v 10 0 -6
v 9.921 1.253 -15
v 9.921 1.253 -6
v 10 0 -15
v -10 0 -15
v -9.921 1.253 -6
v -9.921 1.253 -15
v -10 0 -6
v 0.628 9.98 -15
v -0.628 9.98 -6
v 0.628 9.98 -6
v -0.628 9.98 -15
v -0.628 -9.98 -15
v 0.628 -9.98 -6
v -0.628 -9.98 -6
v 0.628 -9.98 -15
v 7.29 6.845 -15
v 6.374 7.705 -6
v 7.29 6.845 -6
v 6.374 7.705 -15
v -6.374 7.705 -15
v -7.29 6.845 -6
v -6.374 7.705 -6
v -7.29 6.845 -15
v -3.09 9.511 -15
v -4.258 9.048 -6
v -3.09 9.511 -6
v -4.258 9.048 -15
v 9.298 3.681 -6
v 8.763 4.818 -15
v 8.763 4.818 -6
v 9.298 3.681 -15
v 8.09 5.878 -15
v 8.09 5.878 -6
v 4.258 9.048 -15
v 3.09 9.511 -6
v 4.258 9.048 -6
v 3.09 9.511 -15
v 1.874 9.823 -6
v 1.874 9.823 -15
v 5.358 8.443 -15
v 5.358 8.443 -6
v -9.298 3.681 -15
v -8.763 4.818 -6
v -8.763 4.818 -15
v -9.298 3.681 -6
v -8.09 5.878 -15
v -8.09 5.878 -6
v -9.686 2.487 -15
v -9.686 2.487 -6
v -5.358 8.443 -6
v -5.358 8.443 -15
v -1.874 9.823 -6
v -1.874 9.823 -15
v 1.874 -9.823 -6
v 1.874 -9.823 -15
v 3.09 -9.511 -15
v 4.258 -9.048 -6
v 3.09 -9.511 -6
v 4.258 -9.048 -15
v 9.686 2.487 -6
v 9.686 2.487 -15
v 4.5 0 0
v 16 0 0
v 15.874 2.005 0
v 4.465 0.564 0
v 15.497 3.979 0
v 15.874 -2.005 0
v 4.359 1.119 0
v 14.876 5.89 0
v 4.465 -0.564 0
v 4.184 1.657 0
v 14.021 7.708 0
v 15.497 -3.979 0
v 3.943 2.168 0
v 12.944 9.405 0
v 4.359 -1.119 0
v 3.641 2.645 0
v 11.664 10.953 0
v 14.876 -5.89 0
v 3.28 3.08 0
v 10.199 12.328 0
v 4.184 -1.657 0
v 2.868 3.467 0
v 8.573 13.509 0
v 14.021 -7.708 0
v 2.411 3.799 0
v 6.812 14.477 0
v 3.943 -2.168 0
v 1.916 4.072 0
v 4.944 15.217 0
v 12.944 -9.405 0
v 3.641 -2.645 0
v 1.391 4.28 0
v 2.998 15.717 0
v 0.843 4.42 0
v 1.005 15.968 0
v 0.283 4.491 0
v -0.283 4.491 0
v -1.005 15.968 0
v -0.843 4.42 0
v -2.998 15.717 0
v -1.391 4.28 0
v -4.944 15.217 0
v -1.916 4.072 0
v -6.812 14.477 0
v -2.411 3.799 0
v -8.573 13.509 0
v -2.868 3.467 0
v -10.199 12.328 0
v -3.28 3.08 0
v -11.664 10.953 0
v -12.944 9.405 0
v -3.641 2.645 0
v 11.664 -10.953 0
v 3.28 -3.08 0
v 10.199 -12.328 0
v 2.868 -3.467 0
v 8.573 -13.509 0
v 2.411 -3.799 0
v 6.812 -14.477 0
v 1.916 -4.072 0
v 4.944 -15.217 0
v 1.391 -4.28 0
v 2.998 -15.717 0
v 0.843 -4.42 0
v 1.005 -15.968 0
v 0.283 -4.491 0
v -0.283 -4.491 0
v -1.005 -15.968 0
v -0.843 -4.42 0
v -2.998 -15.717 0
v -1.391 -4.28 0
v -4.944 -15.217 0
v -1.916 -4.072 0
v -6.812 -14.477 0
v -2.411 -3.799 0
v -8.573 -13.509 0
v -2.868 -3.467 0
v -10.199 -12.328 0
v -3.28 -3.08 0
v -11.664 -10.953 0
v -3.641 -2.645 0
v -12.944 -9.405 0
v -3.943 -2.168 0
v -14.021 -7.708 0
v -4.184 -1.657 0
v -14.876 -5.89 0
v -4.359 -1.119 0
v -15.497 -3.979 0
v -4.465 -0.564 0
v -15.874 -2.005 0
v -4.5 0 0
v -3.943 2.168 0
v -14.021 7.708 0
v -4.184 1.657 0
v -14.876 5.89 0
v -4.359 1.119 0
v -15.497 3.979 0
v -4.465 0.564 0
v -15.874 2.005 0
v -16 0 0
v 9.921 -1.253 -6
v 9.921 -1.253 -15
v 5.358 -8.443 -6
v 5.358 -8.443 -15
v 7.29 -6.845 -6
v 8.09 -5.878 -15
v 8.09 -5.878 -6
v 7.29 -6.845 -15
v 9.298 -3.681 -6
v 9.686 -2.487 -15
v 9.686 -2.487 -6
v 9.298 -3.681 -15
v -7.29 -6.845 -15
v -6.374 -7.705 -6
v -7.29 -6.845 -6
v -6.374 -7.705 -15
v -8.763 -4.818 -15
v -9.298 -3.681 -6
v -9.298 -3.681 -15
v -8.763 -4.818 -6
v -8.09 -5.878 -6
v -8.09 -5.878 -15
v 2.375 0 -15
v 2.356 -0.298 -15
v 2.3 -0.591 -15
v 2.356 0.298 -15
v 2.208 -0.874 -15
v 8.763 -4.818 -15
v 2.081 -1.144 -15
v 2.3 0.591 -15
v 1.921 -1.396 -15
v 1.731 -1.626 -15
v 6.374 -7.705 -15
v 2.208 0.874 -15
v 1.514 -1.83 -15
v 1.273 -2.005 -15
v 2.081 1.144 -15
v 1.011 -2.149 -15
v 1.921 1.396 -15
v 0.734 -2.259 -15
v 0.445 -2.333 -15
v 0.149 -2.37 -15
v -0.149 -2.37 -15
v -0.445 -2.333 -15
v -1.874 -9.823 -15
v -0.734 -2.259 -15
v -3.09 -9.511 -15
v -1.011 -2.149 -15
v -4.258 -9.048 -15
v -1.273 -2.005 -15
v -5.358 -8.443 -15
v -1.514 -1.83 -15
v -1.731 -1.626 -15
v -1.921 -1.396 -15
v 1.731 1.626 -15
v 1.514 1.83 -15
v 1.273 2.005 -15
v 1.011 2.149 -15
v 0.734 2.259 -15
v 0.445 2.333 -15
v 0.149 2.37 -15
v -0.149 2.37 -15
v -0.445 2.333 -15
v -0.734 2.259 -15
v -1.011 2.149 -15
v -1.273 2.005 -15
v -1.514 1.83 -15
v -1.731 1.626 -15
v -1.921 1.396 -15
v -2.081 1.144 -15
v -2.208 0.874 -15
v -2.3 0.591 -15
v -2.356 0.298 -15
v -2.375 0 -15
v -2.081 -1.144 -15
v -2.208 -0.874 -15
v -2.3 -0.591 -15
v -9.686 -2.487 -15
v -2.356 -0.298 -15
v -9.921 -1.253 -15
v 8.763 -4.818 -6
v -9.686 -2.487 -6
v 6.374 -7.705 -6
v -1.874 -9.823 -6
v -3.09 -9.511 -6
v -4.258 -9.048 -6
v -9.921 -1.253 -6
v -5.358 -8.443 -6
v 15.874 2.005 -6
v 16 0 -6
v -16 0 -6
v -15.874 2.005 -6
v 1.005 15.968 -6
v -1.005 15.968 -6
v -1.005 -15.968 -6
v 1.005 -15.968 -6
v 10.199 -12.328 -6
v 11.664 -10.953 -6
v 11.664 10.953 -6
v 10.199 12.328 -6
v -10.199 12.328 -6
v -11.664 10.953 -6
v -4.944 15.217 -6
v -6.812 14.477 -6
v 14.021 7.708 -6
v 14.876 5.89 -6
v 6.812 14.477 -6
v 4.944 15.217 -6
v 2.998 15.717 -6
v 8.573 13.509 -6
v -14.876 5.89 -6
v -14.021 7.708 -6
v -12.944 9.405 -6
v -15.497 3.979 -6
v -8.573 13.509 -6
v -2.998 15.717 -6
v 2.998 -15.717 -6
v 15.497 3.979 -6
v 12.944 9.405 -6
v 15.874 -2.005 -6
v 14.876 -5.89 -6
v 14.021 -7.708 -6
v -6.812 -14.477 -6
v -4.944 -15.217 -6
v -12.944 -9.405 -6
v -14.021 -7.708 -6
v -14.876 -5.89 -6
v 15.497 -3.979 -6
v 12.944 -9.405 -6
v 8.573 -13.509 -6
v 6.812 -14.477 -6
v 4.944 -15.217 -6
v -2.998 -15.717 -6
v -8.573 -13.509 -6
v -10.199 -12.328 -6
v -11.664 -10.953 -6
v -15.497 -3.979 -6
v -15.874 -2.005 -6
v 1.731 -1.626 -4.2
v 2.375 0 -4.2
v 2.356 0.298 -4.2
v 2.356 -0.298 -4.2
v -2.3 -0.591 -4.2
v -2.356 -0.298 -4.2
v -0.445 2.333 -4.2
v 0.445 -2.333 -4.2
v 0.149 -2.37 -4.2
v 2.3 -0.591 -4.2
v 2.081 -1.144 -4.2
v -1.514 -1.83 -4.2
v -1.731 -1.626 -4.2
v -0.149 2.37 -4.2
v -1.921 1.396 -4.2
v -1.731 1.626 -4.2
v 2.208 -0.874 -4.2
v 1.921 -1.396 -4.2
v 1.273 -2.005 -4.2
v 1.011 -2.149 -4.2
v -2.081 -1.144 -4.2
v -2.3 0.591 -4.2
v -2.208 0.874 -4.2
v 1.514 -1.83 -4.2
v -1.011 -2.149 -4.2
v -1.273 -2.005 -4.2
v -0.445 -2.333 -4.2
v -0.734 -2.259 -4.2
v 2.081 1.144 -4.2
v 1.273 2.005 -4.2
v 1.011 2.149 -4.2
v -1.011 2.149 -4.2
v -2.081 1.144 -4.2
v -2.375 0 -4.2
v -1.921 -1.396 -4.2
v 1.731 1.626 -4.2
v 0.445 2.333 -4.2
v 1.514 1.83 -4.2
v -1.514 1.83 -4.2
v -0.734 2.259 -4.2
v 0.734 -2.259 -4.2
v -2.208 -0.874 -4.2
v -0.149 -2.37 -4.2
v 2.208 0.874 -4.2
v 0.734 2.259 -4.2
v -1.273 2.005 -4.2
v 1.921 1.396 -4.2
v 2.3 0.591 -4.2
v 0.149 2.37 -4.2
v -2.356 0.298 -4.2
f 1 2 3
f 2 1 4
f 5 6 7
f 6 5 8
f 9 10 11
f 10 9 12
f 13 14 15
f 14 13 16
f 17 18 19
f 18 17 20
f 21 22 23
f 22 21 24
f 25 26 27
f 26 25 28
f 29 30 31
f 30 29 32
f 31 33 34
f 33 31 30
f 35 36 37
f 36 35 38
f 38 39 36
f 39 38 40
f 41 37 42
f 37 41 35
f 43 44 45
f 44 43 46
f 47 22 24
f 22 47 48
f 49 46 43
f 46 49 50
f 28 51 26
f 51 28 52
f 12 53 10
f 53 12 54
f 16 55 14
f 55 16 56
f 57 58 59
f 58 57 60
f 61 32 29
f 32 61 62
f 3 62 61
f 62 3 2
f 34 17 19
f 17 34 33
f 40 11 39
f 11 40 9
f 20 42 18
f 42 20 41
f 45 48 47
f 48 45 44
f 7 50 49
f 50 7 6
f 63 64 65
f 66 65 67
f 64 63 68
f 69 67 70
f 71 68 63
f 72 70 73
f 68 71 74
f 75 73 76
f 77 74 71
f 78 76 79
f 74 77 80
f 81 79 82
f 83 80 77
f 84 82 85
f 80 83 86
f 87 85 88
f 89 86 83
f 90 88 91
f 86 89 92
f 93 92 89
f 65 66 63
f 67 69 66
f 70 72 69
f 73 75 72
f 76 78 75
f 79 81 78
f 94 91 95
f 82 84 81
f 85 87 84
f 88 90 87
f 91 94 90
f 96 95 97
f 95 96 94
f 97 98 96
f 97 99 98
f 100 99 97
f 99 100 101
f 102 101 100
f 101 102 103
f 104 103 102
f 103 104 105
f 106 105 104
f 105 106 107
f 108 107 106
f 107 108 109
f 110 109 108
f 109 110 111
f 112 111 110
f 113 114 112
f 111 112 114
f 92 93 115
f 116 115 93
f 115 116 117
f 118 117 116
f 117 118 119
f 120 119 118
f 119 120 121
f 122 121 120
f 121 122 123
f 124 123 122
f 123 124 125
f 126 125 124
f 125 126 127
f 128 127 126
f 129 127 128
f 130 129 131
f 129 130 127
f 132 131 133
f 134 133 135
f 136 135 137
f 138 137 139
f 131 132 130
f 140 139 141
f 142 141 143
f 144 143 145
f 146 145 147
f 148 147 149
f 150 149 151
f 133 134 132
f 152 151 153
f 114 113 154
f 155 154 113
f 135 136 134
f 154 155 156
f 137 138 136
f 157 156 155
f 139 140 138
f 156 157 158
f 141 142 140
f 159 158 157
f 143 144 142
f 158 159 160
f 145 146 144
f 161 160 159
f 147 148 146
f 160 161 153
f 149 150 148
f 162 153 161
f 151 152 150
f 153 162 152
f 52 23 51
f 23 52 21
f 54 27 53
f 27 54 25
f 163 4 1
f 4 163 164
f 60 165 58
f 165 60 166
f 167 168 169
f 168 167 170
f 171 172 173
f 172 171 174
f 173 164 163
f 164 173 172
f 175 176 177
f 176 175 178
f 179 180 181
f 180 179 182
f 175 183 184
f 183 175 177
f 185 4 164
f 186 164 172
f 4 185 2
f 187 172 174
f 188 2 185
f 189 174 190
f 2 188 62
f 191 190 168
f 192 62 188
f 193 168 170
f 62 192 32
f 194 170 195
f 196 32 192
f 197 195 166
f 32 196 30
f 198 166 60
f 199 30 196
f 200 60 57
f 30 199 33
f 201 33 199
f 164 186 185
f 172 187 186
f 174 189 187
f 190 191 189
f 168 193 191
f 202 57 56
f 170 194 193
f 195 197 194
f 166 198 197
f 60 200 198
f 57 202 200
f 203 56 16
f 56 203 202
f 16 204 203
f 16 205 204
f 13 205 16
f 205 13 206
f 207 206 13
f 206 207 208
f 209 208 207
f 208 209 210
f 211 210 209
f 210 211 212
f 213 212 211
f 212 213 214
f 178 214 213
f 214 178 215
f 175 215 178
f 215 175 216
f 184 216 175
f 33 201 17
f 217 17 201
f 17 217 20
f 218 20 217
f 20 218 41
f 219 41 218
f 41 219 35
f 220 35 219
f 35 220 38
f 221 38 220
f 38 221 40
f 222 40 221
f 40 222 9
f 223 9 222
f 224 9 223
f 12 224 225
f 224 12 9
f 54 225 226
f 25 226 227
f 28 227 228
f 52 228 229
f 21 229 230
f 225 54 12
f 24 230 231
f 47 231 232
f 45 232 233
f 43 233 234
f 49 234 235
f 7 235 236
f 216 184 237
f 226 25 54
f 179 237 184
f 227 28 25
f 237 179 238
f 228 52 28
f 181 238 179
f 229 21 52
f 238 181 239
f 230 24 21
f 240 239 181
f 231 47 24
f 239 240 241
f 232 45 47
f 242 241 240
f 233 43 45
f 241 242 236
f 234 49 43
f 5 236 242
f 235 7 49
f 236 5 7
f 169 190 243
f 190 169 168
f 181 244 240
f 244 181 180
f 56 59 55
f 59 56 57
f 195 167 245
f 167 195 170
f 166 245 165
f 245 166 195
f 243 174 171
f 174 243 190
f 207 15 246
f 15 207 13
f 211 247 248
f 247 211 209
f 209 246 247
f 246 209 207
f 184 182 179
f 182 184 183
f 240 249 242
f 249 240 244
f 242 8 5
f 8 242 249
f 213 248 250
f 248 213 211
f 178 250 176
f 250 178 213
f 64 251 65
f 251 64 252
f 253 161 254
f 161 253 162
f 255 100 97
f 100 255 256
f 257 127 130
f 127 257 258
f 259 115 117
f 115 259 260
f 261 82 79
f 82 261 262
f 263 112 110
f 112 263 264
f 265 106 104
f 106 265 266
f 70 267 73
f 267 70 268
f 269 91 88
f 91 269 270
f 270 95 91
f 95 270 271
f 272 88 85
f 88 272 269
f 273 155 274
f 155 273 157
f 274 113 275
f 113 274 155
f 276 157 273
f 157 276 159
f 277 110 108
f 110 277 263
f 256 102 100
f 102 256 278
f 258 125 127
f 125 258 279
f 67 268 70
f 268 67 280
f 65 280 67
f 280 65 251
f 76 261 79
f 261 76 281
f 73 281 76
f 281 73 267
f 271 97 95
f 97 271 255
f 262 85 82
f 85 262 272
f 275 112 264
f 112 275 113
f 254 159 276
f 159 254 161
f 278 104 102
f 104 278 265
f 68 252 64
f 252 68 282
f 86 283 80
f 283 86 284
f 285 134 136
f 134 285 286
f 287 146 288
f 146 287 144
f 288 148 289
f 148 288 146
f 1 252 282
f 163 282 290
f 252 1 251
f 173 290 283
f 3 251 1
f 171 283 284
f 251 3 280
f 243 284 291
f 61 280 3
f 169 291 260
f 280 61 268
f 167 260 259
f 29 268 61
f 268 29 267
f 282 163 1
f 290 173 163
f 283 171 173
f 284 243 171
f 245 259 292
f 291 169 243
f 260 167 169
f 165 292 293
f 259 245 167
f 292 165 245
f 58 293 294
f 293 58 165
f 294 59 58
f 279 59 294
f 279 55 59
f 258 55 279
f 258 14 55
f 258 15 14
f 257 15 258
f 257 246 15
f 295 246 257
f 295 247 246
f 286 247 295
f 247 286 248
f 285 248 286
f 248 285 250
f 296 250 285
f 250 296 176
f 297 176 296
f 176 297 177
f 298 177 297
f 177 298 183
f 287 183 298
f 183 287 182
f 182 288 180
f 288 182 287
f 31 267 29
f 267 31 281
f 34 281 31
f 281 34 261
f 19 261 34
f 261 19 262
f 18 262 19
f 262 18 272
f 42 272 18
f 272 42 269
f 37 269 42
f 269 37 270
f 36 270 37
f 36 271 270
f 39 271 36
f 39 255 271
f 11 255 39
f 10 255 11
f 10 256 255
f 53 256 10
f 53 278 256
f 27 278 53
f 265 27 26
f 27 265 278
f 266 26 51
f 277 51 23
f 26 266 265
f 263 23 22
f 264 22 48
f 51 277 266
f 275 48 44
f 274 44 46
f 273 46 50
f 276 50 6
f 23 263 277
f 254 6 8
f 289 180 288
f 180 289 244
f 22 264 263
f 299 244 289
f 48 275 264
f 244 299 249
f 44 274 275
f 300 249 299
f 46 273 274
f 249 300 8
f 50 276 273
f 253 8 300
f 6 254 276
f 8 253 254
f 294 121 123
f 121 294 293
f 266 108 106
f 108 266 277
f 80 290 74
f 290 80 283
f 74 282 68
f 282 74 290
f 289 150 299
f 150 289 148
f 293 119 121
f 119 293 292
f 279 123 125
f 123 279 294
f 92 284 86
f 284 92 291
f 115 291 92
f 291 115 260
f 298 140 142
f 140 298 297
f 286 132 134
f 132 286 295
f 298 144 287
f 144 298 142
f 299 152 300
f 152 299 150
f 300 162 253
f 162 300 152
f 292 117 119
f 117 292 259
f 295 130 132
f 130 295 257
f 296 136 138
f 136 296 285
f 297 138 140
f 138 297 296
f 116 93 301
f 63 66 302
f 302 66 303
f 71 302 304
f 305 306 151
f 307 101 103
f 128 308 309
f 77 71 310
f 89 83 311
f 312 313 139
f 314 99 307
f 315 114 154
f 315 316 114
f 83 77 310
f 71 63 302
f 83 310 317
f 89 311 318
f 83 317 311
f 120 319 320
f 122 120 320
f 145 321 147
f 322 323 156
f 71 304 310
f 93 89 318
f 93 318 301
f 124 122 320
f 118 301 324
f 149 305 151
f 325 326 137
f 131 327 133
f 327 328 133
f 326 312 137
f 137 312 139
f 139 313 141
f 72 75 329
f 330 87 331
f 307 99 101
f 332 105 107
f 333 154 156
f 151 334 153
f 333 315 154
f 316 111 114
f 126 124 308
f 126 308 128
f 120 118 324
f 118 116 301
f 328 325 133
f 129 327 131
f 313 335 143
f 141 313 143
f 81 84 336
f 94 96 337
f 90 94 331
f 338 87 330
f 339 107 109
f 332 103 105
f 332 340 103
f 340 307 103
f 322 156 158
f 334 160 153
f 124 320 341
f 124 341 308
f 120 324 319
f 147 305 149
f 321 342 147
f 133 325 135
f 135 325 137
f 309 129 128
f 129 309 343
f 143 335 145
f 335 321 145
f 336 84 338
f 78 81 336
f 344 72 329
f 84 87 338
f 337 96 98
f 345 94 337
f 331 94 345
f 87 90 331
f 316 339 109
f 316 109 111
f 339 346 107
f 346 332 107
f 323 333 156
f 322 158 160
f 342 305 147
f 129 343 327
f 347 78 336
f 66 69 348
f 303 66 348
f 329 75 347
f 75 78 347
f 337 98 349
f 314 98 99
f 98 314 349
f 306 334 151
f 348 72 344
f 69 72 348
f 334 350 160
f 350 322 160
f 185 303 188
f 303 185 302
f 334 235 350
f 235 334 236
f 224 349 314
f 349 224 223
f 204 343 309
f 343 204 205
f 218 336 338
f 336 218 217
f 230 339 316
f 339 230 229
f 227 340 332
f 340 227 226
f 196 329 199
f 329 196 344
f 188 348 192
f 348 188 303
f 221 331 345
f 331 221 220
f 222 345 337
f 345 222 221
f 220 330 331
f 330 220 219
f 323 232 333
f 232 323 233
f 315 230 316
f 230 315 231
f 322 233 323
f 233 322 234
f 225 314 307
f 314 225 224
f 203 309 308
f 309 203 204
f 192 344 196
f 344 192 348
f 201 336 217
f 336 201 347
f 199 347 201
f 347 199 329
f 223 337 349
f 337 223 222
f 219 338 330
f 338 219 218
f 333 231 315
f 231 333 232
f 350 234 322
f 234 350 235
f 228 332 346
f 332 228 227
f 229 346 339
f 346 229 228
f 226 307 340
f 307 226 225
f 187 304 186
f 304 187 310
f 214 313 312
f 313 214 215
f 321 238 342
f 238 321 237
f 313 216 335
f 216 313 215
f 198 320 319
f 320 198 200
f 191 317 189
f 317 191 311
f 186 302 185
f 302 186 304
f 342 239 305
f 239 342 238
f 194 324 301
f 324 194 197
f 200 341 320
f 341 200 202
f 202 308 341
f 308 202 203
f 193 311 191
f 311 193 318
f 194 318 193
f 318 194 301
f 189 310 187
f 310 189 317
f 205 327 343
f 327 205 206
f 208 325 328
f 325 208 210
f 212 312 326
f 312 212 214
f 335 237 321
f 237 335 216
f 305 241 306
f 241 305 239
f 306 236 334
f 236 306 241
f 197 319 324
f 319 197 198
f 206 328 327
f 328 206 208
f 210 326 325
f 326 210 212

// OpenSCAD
$fn = 50;


difference() {
	union() {
		translate(v = [0, 0, -15.0000000000]) {
			cylinder(h = 15, r = 10.0000000000);
		}
		translate(v = [0, 0, -6.0000000000]) {
			cylinder(h = 6, r = 16.0000000000);
		}
	}
	union() {
		translate(v = [0, 0, 0]) {
			rotate(a = [0, 0, 0]) {
				difference() {
					union() {
						#translate(v = [0, 0, -15.0000000000]) {
							cylinder(h = 15, r = 2.2500000000);
						}
						#translate(v = [0, 0, -4.2000000000]) {
							cylinder(h = 4.2000000000, r1 = 2.3750000000, r2 = 4.5000000000);
						}
						#translate(v = [0, 0, -15.0000000000]) {
							cylinder(h = 15, r = 2.3750000000);
						}
						#translate(v = [0, 0, -15.0000000000]) {
							cylinder(h = 15, r = 2.2500000000);
						}
					}
					union();
				}
			}
		}
	}
}
